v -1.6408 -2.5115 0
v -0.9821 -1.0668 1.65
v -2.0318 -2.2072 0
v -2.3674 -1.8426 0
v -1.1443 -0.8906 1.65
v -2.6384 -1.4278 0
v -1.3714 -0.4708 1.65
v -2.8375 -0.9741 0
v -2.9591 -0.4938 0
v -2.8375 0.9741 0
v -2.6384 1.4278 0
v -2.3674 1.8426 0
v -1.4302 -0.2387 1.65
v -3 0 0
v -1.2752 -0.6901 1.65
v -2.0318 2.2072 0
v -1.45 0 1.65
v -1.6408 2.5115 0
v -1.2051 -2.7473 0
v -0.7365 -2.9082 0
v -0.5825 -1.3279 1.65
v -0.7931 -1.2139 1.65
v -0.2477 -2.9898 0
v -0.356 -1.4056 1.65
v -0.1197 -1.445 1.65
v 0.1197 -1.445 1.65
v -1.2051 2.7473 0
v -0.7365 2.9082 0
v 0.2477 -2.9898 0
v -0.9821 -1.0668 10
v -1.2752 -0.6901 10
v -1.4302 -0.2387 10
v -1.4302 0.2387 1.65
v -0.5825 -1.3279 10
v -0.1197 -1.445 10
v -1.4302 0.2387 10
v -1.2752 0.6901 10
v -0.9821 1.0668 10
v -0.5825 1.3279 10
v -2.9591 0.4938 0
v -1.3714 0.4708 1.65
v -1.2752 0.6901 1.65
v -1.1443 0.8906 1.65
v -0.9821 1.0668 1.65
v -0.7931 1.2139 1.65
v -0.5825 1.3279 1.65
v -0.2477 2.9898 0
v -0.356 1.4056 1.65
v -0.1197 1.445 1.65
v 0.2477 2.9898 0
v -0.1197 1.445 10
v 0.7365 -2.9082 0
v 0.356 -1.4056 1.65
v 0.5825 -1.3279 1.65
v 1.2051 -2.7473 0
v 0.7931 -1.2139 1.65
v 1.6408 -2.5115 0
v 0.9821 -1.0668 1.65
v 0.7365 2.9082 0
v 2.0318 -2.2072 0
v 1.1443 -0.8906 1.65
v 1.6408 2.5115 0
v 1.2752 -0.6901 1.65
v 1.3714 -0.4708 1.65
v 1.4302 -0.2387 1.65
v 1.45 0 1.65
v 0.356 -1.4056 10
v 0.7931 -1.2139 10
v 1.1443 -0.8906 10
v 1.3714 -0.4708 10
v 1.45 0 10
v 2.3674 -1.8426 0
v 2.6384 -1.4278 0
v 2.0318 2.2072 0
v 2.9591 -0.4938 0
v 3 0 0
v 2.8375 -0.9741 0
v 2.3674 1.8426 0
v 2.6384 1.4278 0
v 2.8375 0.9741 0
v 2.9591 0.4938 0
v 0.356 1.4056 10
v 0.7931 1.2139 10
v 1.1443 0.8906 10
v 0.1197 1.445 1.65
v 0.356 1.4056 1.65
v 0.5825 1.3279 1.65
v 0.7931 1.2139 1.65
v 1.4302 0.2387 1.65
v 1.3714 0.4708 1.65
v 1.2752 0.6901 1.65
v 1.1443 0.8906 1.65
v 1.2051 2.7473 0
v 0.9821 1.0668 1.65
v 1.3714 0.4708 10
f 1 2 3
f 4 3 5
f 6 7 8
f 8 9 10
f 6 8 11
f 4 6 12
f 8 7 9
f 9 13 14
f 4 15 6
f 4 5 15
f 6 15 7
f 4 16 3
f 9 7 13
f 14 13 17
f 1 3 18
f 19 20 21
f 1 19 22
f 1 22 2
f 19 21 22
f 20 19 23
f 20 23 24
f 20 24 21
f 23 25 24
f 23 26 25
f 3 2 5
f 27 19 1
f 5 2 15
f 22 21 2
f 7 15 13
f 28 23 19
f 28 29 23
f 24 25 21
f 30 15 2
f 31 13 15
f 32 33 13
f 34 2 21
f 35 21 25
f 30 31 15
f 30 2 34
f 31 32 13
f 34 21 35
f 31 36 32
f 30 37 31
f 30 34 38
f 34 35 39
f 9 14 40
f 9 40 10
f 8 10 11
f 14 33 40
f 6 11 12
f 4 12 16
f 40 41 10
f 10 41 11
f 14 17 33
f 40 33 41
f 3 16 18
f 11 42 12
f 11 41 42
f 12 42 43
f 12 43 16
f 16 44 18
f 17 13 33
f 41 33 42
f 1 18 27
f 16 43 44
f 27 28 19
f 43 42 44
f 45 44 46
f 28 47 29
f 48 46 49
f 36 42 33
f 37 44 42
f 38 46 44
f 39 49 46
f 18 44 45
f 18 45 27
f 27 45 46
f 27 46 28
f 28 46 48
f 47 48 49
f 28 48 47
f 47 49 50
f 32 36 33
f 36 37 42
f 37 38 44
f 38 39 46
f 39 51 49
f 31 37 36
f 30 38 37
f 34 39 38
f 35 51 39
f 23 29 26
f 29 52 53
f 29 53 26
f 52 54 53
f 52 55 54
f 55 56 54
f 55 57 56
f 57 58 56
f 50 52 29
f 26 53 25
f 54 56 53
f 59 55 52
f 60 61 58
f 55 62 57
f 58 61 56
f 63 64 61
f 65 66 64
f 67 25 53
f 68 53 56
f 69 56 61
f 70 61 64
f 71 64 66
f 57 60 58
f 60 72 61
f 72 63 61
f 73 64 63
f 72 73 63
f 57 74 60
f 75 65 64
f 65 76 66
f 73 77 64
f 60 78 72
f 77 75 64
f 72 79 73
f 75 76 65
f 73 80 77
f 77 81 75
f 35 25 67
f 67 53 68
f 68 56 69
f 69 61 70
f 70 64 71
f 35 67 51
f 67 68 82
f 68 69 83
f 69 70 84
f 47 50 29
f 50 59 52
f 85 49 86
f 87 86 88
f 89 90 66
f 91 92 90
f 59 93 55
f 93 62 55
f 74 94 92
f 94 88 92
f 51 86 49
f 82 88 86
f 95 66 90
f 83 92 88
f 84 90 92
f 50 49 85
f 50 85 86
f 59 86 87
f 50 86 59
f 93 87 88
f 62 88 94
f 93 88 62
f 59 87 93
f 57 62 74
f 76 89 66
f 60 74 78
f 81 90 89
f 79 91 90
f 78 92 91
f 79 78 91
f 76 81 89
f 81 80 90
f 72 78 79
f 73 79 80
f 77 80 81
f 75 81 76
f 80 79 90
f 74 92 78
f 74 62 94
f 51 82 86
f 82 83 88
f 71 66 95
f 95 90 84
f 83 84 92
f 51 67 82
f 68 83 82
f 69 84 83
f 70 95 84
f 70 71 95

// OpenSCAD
// file: ../lib/lib.scad
// Shared helpers. Include AFTER params.scad (needs TOL, M3_* etc.).
$fa = 4; $fs = 0.5;

module rrect(size, r) {            // 2D rounded rectangle, centred
    r2 = min(r, min(size[0], size[1]) / 2 - 0.001);
    offset(r = r2) square([size[0] - 2 * r2, size[1] - 2 * r2], center = true);
}
module rbox(size, r, center_xy = true) {   // box with rounded vertical edges
    translate(center_xy ? [0, 0, 0] : [size[0] / 2, size[1] / 2, 0])
        linear_extrude(size[2]) rrect([size[0], size[1]], r);
}
module rbox_at(x0, x1, y0, y1, z0, z1, r = 0.01) {
    translate([(x0 + x1) / 2, (y0 + y1) / 2, z0]) rbox([x1 - x0, y1 - y0, z1 - z0], r);
}
module box_at(x0, x1, y0, y1, z0, z1) { translate([x0, y0, z0]) cube([x1 - x0, y1 - y0, z1 - z0]); }

module ring(ro, ri, h) { difference() { cylinder(r = ro, h = h); translate([0, 0, -1]) cylinder(r = ri, h = h + 2); } }
module ring_sector(ro, ri, h, a0, a1) {
    intersection() {
        ring(ro, ri, h);
        linear_extrude(h) polygon(concat([[0, 0]], [for (a = [a0 : (a1 - a0) / 24 : a1]) 2 * ro * [cos(a), sin(a)]]));
    }
}
// teardrop hole along an axis lying horizontal (axis = Y after rotation), printable w/o support
module teardrop2d(d) { union() { circle(d = d); rotate(45) square(d / 2); } }
// vertical heat-set insert hole, opening at z=0 going +z (depth l)
module insert_hole(l = M3_INSERT_L) { translate([0, 0, -EPS]) cylinder(d = M3_INSERT_D, h = l + EPS); }
module m3_clear(l) { translate([0, 0, -EPS]) cylinder(d = M3_CLEAR, h = l + 2 * EPS); }
module m3_csk(l) {  // countersunk clearance from z=0 upward, head at z=0 side
    translate([0, 0, -EPS]) { cylinder(d = M3_CLEAR, h = l + 2 * EPS); cylinder(d1 = 6.4, d2 = M3_CLEAR, h = 1.7); }
}
module card2d() { rrect([CARD_L, CARD_W], CARD_R); }
module card_at(cy, z) { translate([0, cy, z]) linear_extrude(CARD_T) card2d(); }

// ---- gears ----
function _inv(a) = tan(a) - a * PI_ / 180;           // involute function, a in deg
function _invpt(rb, r, ang0, s) = let(al = acos(rb / r), th = ang0 - s * (_inv(al) * 180 / PI_)) [r * cos(th), r * sin(th)];
module involute_gear2d(m, z, pa = 20, clearance = 0.05) {
    rp = m * z / 2; rb = rp * cos(pa); ra = rp + m - clearance; rf = rp - 1.25 * m;
    half = 90 / z + _inv(pa) * 180 / PI_;            // tooth half-angle at base (deg)
    n = 8;
    rs = [for (i = [0 : n]) max(rb, rf) + (ra - max(rb, rf)) * i / n];
    union() {
        circle(r = rf, $fn = z * 4);
        for (k = [0 : z - 1]) rotate(k * 360 / z) polygon(concat(
            [[rf * cos(-half), rf * sin(-half)]],
            [for (r = rs) let(p = _invpt(rb, r, half, 1)) [p[0], -p[1]]],
            [for (i = [n : -1 : 0]) _invpt(rb, rs[i], half, 1)],
            [[rf * cos(half), rf * sin(half)]]));
    }
}
// straight gear rack (2D in XY: teeth along +x, pointing -y, pitch line at y=0)
module gear_rack2d(m, len, back = 3) {
    p = PI_ * m; ad = m; de = 1.25 * m; t = tan(20);
    n = ceil(len / p) + 1;
    intersection() {
        union() {
            translate([0, de]) square([len, back]);
            for (i = [0 : n]) translate([i * p - p / 4, 0]) polygon([
                [-(p / 4 + de * t), de + 0.01], [p / 4 + de * t + 0.01, de + 0.01],
                [p / 4 - ad * t, -ad], [-(p / 4 - ad * t), -ad] ]);
        }
        translate([0, -ad - 1]) square([len, ad + de + back + 2]);
    }
}
// GT2 belt-tooth profile ring (teeth outward), 2D
module gt2_ring2d(n, r_land, ri) {
    union() {
        difference() { circle(r = r_land + 0.01, $fn = n * 2); circle(r = ri, $fn = n * 2); }
        for (k = [0 : n - 1]) rotate(k * 360 / n)
            translate([r_land, 0]) hull() { translate([-0.2, 0]) square([0.2, 1.0], center = true); translate([0.25, 0]) circle(r = 0.5, $fn = 12); }
    }
}
// main file
// Vendor model: M3 countersunk screw (ISO 10642), head flush at z = 0, shank toward +Z.
include <../params.scad>
include <../lib/lib.scad>
module vendor_m3_csk_screw(l = 10) color([0.3,0.3,0.32]) { cylinder(d1 = 6.0, d2 = 2.9, h = 1.65); cylinder(d = 2.9, h = l); }
vendor_m3_csk_screw();
